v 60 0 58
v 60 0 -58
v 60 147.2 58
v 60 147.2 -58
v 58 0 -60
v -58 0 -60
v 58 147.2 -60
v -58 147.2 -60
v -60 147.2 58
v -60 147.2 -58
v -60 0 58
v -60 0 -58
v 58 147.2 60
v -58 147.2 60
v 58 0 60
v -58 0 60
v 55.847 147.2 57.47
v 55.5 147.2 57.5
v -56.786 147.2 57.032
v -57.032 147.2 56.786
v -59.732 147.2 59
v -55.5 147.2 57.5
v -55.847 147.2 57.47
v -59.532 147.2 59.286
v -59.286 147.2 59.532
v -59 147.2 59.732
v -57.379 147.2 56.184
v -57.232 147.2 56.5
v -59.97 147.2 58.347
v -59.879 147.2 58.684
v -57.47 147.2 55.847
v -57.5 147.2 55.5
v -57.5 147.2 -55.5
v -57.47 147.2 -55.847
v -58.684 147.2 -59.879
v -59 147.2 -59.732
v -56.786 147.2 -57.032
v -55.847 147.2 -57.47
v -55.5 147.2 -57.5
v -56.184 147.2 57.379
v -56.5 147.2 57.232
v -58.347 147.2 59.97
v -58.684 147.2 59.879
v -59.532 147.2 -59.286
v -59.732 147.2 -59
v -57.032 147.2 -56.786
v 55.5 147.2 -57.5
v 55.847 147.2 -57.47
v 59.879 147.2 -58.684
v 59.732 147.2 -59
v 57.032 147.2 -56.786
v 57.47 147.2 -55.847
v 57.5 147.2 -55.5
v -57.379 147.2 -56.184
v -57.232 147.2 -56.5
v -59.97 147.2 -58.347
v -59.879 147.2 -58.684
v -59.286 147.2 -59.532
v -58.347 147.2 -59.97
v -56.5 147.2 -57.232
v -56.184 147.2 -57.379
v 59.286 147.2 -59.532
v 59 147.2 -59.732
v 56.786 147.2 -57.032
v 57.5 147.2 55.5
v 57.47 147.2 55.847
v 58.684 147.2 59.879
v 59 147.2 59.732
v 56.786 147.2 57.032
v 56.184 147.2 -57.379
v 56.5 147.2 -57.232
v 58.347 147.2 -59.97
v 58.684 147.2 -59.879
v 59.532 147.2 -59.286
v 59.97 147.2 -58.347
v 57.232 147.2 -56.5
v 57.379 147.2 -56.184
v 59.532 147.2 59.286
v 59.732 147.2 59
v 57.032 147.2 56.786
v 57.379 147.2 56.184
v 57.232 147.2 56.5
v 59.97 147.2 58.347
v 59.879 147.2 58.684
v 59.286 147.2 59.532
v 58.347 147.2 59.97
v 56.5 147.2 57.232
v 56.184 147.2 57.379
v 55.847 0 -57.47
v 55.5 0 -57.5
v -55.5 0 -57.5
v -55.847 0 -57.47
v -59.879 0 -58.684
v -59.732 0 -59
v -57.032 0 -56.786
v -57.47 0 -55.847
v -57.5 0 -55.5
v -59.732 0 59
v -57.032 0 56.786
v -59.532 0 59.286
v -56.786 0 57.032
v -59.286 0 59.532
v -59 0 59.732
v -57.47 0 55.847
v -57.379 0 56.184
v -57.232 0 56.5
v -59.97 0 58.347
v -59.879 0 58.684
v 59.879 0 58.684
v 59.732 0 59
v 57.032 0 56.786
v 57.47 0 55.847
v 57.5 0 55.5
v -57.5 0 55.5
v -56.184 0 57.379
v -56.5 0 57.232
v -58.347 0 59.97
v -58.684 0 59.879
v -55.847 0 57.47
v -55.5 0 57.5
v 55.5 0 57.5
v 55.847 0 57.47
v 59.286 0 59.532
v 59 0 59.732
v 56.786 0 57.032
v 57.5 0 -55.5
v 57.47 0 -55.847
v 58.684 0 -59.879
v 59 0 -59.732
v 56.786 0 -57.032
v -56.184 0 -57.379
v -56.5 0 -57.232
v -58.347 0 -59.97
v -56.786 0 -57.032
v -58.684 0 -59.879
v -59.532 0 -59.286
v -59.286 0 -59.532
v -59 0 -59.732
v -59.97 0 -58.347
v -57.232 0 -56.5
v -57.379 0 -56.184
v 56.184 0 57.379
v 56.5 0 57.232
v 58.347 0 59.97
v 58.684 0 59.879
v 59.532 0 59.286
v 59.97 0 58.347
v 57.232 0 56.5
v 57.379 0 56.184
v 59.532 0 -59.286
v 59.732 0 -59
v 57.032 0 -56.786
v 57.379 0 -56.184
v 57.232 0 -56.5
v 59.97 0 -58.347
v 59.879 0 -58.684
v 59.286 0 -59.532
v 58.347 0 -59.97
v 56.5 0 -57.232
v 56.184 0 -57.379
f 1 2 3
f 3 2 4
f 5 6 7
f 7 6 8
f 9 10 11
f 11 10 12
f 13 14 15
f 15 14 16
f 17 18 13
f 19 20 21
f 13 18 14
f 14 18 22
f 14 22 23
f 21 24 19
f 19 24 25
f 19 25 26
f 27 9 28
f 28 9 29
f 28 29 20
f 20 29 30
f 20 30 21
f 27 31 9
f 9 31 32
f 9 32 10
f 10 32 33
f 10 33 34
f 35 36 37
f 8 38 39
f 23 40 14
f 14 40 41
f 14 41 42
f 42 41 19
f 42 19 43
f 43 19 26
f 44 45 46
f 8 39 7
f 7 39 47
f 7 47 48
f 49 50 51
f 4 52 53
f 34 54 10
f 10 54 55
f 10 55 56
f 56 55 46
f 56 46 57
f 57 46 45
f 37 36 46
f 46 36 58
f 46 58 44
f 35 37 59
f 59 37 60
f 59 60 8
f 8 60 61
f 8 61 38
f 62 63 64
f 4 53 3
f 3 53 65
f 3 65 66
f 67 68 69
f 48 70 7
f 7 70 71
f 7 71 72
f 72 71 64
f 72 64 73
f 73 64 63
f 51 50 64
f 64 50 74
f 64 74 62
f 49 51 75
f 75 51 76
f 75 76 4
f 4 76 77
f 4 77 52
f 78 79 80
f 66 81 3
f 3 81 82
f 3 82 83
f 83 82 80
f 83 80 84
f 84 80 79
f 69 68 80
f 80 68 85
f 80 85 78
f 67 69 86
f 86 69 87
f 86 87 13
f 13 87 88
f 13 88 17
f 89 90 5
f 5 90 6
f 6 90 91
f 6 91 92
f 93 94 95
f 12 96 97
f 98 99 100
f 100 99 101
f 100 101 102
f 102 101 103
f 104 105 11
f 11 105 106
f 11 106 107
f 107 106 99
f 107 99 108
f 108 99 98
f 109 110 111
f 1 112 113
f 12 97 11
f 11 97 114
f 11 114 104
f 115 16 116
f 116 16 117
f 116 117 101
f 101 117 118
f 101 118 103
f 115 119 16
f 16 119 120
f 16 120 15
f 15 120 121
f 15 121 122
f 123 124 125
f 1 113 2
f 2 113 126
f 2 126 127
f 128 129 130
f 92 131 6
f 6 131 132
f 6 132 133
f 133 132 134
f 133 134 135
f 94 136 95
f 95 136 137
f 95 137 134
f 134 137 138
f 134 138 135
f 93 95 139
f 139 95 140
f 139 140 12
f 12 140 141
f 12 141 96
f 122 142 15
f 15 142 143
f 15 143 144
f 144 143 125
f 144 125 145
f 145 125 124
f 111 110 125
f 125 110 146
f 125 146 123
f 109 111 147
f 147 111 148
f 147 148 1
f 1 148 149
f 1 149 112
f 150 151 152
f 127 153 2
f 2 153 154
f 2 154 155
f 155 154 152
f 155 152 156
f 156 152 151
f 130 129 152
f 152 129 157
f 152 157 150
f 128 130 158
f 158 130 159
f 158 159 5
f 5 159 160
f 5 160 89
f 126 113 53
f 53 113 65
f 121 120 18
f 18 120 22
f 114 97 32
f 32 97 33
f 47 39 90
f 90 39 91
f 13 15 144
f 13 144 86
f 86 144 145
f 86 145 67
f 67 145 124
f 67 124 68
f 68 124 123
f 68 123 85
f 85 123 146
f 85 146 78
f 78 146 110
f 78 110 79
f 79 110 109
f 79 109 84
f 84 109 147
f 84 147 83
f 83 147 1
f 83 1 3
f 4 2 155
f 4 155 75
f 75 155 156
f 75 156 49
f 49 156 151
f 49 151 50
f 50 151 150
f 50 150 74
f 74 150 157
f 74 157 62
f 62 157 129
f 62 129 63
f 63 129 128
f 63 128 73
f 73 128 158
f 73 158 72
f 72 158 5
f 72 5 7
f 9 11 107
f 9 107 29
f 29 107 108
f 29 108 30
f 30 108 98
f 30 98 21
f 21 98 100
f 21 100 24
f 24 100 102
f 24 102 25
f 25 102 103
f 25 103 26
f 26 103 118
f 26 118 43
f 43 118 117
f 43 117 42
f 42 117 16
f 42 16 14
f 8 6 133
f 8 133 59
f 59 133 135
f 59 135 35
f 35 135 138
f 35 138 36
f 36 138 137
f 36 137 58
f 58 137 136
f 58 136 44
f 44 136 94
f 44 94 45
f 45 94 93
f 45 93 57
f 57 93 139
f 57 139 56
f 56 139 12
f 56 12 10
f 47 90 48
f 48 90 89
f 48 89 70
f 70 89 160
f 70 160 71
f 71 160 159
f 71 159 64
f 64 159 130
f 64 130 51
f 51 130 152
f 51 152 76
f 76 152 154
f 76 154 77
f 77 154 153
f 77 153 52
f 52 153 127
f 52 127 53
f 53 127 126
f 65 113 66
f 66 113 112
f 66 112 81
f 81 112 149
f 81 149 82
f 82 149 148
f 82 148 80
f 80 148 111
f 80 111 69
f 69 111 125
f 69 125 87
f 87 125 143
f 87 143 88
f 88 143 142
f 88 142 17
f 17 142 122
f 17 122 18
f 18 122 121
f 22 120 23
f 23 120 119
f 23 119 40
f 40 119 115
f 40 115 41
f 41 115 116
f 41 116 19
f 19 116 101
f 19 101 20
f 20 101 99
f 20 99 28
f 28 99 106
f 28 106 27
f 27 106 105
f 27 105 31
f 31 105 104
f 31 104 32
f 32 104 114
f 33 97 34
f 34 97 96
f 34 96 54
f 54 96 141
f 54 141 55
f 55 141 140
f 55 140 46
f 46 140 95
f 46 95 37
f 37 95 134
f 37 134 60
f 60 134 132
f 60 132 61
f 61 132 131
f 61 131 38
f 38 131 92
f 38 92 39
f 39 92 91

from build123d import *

# Parameters (mm, degrees)
ESBO_O2_W                  = 120
ESBO_O2_H                  = 120
RESSALTO_EXTRUS_O1_DEPTH   = 147.2
CORTE_EXTRUS_O1_DEPTH      = 170.905385436
CORTE_EXTRUS_O1_DEPTH_BACK = 170.905385436
ESBO_O3_W                  = 115
ESBO_O3_H                  = 115
FILETE1_R                  = 2
FILETE2_R                  = 2


with BuildPart() as part:
    # Esboço2 → Ressalto-extrusão1 (new body)
    with BuildSketch(Plane(origin=(0, 0, 0), x_dir=(1, 0, 0), z_dir=(0, 1, 0))):
        Rectangle(ESBO_O2_W, ESBO_O2_H)
    extrude(amount=RESSALTO_EXTRUS_O1_DEPTH)

    # Esboço3 → Corte-extrusão1 (cut, two sides: drawn at the far end of the back side and taken through both)
    with BuildSketch(Plane(origin=(0, 147.2, 0), x_dir=(1, 0, 0), z_dir=(0, 1, 0)).offset(-CORTE_EXTRUS_O1_DEPTH_BACK)):
        Rectangle(ESBO_O3_W, ESBO_O3_H)
    extrude(amount=CORTE_EXTRUS_O1_DEPTH + CORTE_EXTRUS_O1_DEPTH_BACK, mode=Mode.SUBTRACT)

    # Filete1
    filete1_edges = [part.edges().sort_by_distance(p)[0] for p in [
        (60, 73.6, 60),
        (-60, 73.6, 60),
        (-60, 73.6, -60),
        (60, 73.6, -60),
    ]]
    fillet(filete1_edges, radius=FILETE1_R)

    # Filete2
    filete2_edges = [part.edges().sort_by_distance(p)[0] for p in [
        (57.5, 73.6, -57.5),
        (57.5, 73.6, 57.5),
        (-57.5, 73.6, 57.5),
        (-57.5, 73.6, -57.5),
    ]]
    fillet(filete2_edges, radius=FILETE2_R)


solid = part.part
